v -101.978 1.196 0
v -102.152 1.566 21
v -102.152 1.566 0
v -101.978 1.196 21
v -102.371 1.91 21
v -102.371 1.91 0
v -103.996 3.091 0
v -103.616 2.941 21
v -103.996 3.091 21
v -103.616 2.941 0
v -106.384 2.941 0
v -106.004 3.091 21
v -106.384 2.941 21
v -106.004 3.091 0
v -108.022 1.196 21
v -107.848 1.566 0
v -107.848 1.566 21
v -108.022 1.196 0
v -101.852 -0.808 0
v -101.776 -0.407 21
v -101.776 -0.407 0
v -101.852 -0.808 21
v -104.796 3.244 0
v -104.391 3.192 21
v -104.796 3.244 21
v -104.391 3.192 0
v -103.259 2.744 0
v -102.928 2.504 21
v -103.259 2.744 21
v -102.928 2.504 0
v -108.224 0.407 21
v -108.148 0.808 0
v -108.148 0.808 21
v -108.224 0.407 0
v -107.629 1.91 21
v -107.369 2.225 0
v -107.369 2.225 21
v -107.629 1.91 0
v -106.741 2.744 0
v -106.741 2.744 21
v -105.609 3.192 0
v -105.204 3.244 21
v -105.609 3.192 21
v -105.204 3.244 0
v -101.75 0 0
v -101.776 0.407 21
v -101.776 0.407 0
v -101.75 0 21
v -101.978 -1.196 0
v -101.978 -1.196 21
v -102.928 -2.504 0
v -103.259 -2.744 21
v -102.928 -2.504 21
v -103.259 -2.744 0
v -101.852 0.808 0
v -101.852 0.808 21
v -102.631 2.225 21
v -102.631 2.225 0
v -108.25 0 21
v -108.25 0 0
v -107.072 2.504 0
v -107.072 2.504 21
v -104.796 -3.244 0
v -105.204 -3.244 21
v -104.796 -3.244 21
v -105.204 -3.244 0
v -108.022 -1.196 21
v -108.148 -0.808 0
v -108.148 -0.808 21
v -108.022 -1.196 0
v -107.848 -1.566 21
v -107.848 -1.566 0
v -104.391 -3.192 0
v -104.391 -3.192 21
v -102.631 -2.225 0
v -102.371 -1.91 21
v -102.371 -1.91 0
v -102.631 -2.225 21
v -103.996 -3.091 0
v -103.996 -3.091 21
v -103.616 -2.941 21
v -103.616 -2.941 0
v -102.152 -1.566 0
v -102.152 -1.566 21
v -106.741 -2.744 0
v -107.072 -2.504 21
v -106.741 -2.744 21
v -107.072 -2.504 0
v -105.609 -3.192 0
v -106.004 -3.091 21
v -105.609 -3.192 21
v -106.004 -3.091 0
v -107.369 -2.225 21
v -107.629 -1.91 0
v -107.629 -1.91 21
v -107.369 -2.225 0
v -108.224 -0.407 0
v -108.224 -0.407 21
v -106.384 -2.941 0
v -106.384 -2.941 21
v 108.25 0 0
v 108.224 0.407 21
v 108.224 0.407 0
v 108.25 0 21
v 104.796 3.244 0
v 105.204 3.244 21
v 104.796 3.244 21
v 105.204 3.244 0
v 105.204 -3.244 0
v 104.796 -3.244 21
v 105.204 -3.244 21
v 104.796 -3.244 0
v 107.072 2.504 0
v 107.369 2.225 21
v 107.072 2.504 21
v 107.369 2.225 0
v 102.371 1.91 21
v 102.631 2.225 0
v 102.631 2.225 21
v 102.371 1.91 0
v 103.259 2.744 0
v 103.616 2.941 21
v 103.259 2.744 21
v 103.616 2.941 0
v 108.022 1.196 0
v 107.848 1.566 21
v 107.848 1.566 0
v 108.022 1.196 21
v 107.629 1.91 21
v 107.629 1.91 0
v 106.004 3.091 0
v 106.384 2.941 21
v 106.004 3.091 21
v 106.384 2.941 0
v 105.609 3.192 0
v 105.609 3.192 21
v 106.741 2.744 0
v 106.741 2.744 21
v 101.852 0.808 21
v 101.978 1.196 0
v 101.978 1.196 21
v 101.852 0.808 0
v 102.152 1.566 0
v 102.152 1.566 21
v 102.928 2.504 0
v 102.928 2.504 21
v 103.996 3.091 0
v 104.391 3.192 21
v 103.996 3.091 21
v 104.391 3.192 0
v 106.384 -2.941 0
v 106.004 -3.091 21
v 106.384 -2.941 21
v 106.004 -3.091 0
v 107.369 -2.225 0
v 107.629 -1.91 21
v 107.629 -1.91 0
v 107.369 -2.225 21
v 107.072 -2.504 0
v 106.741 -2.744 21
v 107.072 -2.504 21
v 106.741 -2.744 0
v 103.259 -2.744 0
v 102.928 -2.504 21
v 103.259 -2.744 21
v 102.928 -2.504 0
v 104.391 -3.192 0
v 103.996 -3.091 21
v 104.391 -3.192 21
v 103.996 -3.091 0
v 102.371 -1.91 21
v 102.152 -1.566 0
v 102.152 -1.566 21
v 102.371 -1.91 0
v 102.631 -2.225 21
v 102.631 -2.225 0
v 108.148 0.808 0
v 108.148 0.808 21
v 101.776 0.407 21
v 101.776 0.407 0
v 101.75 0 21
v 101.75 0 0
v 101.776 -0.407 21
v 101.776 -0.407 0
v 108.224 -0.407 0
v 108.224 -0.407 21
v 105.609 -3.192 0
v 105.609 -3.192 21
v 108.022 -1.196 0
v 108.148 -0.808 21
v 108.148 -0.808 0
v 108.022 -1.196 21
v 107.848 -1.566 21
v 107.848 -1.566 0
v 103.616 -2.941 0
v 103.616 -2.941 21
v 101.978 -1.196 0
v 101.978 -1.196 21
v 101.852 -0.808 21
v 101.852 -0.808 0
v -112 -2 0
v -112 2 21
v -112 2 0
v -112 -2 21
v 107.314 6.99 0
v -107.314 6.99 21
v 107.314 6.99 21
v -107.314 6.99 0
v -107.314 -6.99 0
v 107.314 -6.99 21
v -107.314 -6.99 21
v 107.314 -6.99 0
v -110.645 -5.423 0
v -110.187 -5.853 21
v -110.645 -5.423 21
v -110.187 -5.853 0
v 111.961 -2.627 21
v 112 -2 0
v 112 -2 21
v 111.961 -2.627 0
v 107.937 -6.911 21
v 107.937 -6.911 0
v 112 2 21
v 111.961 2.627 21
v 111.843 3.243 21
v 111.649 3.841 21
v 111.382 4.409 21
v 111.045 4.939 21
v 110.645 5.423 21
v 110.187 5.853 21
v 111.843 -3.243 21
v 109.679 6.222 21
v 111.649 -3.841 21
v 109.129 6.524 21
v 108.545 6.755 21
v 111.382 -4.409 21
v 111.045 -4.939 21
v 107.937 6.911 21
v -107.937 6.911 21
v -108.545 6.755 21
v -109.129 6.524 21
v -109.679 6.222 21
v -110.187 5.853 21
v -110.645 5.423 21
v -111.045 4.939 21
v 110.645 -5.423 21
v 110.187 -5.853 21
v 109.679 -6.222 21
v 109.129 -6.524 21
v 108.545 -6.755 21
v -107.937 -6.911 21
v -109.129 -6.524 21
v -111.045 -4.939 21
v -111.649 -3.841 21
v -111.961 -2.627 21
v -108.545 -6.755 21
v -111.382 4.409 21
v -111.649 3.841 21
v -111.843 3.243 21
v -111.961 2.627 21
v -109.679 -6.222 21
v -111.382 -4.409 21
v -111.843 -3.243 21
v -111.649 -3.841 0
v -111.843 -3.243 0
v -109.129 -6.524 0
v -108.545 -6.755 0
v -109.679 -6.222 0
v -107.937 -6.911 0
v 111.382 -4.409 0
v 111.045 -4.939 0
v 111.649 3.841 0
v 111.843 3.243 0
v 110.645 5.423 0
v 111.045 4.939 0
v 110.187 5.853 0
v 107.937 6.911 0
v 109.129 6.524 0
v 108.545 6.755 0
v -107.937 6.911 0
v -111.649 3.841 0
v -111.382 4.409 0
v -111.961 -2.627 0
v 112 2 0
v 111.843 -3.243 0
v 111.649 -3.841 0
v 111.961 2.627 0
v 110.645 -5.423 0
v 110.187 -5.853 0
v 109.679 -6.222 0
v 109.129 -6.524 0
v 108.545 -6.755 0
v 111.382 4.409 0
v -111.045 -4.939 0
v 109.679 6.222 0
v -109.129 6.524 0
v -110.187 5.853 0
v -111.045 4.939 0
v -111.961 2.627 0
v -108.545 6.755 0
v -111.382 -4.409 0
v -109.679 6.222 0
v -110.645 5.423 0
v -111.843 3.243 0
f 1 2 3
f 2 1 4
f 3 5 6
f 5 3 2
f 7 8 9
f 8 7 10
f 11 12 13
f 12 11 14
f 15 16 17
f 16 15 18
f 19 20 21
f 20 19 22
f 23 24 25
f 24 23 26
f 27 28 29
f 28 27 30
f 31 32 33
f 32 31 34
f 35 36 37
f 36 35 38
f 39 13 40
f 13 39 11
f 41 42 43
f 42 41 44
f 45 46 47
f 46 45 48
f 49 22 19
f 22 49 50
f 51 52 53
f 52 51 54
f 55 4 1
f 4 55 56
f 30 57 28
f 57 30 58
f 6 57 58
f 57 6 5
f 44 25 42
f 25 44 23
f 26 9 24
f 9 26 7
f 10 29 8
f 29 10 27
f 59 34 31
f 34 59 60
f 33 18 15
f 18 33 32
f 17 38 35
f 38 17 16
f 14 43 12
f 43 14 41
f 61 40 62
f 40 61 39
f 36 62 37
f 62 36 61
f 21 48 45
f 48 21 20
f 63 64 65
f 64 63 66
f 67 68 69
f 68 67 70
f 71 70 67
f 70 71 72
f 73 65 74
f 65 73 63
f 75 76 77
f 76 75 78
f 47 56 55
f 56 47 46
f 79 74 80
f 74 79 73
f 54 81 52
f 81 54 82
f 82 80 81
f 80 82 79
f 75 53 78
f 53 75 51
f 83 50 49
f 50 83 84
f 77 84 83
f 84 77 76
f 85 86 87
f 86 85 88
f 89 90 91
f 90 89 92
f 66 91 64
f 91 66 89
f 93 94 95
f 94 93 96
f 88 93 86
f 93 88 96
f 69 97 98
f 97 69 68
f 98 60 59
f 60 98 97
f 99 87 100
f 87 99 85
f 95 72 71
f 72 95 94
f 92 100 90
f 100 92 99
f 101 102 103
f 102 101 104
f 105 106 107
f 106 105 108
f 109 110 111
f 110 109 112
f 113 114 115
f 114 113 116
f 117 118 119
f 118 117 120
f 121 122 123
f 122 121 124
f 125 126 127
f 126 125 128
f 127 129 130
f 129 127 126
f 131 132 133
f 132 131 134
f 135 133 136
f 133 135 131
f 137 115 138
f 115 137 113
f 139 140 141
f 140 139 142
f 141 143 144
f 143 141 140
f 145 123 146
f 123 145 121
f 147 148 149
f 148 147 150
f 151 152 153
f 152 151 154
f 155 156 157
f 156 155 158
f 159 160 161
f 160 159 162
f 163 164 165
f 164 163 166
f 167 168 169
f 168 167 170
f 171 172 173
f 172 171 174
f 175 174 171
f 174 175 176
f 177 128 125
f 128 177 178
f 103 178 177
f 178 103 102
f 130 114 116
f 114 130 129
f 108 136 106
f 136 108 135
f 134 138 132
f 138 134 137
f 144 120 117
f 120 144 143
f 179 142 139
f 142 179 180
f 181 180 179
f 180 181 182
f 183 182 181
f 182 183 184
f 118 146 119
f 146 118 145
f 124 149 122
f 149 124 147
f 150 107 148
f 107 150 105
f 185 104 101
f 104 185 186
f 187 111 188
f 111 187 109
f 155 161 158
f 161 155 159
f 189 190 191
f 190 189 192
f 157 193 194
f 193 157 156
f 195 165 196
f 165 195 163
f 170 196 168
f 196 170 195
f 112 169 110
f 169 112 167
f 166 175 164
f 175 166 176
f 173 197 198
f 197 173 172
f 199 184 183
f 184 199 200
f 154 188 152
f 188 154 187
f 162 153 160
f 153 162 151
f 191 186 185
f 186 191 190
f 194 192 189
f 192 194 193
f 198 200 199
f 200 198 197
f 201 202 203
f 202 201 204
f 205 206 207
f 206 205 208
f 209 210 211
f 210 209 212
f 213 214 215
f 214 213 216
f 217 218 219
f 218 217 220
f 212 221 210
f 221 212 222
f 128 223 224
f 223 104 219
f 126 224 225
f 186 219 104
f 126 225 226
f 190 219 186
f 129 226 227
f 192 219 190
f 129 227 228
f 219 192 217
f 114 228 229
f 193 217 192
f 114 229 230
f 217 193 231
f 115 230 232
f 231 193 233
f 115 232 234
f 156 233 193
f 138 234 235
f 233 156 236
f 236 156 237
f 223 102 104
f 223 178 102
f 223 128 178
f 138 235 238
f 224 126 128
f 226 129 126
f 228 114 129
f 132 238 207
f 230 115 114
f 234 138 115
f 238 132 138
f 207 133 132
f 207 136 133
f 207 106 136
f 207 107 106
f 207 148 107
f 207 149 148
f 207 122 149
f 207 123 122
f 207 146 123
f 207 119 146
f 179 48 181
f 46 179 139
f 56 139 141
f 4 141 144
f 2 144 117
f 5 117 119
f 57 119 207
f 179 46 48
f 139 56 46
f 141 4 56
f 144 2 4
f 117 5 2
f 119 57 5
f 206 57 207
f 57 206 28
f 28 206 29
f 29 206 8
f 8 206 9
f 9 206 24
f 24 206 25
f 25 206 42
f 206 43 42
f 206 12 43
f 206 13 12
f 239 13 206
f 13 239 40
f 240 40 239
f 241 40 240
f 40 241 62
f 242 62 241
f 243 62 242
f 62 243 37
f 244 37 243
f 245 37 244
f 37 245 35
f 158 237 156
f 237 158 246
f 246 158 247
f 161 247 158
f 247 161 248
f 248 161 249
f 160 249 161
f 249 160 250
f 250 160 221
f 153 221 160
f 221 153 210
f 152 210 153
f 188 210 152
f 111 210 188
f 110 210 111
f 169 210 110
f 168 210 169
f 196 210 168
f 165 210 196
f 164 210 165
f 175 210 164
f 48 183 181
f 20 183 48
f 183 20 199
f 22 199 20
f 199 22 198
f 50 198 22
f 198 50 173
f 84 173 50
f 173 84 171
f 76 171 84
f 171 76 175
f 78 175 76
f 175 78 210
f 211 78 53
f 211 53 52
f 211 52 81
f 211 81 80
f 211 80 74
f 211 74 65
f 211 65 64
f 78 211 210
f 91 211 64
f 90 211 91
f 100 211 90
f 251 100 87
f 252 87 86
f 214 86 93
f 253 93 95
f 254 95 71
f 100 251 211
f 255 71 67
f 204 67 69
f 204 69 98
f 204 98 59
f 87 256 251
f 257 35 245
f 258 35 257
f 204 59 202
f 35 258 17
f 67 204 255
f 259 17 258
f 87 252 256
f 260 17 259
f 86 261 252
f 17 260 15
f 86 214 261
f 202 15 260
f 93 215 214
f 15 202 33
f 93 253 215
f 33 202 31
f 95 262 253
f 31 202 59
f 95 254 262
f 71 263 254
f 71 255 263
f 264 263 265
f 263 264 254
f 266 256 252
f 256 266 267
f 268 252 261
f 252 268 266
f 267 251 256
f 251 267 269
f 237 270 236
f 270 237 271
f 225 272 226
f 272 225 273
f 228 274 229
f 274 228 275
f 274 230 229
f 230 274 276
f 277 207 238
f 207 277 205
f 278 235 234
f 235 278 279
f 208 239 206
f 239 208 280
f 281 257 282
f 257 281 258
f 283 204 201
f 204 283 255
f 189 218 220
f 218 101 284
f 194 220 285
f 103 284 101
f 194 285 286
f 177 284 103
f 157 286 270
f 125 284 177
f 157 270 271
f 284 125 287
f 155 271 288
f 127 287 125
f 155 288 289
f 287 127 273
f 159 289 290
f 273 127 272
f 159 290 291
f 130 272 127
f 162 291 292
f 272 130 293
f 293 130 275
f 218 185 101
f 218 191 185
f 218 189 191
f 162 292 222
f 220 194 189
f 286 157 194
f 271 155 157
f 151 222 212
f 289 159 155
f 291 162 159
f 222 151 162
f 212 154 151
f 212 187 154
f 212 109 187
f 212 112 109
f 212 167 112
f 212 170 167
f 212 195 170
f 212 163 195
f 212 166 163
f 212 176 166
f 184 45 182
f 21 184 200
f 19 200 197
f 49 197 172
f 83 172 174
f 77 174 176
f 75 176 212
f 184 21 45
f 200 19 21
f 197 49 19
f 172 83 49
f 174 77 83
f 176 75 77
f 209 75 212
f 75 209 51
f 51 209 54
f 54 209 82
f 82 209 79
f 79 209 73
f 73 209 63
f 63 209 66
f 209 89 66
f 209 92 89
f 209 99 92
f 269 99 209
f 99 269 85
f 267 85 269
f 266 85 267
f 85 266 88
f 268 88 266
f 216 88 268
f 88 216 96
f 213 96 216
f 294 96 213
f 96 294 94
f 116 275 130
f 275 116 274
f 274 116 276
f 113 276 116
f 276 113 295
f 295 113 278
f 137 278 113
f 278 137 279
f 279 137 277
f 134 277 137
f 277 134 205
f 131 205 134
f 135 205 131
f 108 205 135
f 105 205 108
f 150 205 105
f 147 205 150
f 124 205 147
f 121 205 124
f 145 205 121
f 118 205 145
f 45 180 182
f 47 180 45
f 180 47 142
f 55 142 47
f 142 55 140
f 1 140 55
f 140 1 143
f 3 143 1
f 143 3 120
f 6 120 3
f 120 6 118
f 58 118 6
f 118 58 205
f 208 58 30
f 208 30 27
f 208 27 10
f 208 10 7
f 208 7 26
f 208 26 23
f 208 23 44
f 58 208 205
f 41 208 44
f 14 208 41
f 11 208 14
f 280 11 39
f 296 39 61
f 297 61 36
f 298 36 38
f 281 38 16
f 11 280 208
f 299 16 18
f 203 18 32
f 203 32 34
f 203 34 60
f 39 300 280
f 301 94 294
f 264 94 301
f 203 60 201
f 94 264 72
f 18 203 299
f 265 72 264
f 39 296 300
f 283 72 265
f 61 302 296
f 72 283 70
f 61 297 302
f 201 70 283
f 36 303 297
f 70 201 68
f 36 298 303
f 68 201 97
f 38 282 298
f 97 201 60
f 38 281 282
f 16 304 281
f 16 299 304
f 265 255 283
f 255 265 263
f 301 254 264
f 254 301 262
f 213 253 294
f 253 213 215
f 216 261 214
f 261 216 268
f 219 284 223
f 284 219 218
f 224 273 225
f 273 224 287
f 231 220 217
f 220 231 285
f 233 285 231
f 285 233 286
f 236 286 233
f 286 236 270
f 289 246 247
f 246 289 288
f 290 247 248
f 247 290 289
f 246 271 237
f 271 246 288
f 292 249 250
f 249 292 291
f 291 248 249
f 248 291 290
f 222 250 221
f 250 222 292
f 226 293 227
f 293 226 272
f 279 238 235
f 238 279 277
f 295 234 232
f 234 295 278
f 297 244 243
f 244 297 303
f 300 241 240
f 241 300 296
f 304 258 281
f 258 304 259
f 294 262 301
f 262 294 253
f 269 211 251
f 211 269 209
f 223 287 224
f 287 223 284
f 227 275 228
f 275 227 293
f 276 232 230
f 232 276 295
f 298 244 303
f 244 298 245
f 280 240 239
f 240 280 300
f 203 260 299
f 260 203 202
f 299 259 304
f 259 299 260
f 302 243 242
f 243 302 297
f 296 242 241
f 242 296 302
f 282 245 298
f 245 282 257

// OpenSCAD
$fn = 50;


difference() {
	union() {
		hull() {
			translate(v = [-107.0000000000, 2.0000000000, 0]) {
				cylinder(h = 21, r = 5);
			}
			translate(v = [107.0000000000, 2.0000000000, 0]) {
				cylinder(h = 21, r = 5);
			}
			translate(v = [-107.0000000000, -2.0000000000, 0]) {
				cylinder(h = 21, r = 5);
			}
			translate(v = [107.0000000000, -2.0000000000, 0]) {
				cylinder(h = 21, r = 5);
			}
		}
	}
	union() {
		translate(v = [-105.0000000000, 0.0000000000, -100.0000000000]) {
			cylinder(h = 200, r = 3.2500000000);
		}
		translate(v = [-105.0000000000, 0.0000000000, -100.0000000000]) {
			cylinder(h = 200, r = 3.2500000000);
		}
		translate(v = [105.0000000000, 0.0000000000, -100.0000000000]) {
			cylinder(h = 200, r = 3.2500000000);
		}
		translate(v = [105.0000000000, 0.0000000000, -100.0000000000]) {
			cylinder(h = 200, r = 3.2500000000);
		}
	}
}
